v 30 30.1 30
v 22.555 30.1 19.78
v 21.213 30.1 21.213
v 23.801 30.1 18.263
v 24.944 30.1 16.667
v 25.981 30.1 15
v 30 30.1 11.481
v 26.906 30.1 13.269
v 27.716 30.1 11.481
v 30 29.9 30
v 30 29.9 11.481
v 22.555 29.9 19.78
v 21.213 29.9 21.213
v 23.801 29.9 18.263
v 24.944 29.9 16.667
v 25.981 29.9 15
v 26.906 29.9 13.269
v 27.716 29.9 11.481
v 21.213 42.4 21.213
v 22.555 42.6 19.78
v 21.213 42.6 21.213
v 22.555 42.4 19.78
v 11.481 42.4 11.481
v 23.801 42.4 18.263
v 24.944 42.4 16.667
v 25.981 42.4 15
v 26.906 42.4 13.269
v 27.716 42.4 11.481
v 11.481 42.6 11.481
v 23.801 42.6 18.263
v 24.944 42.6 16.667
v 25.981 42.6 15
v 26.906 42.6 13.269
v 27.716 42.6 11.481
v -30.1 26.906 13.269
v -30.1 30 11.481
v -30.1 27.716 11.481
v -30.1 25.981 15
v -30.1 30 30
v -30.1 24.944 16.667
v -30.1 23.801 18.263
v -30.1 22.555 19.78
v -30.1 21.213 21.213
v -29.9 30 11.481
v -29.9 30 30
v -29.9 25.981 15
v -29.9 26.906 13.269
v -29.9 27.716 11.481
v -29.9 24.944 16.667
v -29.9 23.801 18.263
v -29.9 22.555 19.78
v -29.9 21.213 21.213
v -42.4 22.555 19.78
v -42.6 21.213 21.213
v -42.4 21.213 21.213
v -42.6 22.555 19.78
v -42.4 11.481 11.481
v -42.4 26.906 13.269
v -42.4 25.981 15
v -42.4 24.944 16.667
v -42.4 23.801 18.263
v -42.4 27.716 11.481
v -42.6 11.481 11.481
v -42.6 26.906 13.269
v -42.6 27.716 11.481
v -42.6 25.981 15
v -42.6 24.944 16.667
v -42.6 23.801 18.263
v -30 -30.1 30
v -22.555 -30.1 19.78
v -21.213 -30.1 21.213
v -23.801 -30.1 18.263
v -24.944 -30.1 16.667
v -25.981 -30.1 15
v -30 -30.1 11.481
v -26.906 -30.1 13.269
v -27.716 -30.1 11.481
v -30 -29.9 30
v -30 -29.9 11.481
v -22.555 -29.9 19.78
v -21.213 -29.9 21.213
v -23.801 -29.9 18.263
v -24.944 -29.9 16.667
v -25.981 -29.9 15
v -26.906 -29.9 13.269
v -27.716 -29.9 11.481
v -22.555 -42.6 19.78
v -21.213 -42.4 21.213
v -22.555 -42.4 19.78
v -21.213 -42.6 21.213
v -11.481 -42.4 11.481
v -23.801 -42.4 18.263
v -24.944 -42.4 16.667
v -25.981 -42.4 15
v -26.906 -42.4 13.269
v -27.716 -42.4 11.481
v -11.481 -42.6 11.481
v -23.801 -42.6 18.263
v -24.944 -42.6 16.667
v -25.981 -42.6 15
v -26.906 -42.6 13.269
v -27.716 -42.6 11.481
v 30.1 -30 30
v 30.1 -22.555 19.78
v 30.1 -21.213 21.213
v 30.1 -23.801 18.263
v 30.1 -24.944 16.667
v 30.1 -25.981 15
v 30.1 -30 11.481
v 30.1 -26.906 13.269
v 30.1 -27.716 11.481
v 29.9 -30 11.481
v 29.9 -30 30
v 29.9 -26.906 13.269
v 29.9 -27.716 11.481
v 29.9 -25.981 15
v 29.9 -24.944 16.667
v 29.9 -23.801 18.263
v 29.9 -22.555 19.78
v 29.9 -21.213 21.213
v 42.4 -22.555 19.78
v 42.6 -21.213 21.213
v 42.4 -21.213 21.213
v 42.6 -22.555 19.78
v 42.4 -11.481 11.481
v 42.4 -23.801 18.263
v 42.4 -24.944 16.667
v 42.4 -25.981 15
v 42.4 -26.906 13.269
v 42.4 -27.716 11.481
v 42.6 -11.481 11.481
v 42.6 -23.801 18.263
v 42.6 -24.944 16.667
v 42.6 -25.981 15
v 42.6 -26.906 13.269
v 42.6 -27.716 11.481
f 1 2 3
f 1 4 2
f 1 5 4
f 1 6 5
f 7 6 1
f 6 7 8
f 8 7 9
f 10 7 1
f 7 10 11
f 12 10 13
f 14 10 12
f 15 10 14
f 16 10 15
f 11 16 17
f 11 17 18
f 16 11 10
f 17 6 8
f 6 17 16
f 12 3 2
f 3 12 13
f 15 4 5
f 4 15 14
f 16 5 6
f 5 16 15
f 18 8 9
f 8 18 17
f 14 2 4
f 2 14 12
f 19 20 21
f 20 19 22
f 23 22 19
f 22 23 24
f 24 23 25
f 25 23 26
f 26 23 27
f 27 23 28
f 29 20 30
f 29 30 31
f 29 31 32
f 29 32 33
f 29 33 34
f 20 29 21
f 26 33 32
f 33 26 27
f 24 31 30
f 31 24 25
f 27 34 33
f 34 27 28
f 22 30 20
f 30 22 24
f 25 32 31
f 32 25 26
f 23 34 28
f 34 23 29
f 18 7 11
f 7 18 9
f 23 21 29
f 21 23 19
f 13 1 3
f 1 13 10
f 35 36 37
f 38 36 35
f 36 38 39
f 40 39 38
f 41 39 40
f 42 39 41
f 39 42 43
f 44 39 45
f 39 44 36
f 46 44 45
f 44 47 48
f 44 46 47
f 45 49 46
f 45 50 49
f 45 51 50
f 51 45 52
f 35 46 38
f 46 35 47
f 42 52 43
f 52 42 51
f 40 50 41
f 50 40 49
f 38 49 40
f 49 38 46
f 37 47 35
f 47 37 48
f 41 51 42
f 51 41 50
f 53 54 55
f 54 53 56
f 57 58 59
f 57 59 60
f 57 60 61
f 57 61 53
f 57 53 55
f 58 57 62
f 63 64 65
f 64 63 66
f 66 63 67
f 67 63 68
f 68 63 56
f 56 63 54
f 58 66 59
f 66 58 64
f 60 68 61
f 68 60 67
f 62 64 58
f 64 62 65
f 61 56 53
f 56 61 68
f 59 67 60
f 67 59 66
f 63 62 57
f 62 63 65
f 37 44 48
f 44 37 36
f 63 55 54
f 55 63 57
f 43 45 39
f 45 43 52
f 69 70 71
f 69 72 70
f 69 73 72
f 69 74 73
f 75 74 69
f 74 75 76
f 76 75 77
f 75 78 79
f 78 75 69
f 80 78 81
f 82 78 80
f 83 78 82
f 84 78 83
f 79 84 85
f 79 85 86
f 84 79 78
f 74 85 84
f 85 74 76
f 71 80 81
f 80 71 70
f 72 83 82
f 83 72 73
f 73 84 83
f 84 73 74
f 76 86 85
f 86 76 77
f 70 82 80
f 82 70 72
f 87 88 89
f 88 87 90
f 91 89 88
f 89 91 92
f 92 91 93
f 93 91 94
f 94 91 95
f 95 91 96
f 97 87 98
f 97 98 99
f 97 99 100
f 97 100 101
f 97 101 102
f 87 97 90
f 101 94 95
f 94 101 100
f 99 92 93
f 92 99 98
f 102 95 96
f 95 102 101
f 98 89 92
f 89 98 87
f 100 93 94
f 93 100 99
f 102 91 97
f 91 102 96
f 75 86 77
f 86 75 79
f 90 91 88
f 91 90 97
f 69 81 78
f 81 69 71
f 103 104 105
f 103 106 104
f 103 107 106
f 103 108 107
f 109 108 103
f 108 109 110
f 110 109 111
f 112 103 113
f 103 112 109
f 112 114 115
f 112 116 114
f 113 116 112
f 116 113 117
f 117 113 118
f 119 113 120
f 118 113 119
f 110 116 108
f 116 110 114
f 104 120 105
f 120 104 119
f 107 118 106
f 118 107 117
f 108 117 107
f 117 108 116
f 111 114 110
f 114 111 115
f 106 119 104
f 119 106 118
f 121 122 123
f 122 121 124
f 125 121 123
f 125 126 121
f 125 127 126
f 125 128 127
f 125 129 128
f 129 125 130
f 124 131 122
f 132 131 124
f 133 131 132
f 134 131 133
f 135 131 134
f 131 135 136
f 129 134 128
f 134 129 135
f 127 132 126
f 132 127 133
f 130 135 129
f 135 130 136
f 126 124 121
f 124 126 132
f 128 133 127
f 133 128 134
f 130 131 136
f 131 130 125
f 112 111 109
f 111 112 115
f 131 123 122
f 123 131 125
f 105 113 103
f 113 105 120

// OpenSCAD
// file: def.scad
round_radius = 0.6;
sticker_margin = 1.2;
sticker_round_radius = 0.4;
cube_size = 60;
disk_height = 12.5;
disk_radius = cube_size / 2;
base_size = cube_size / 2 / sqrt(10 + 7 * sqrt(2));
cut1_dis = base_size * (1 + sqrt(2) / 2);
cut2_dis = cube_size / 2;
inf = cube_size * 10;

module _cube() {
    cube([cube_size - round_radius * 2, cube_size - round_radius * 2, cube_size - round_radius * 2], center = true);
}

module _disk() {
    translate([0, 0, cube_size / 2 + disk_height / 2])
        cylinder(r = disk_radius - round_radius, h = disk_height - round_radius * 2, center = true, $fn = 96);
}

module _int_cut1() {
    translate([-inf, -inf, cut1_dis + round_radius])
        cube([inf * 2, inf * 2, inf]);
}

module _dif_cut1() {
    translate([-inf, -inf, cut1_dis - round_radius])
        cube([inf * 2, inf * 2, inf]);
}

module _sticker_int_cut1() {
    translate([-inf, -inf, cut1_dis + sticker_margin])
        cube([inf * 2, inf * 2, inf]);
}

module _sticker_dif_cut1() {
    translate([-inf, -inf, cut1_dis - sticker_margin])
        cube([inf * 2, inf * 2, inf]);
}

module _int_cut2() {
    translate([-inf, -inf, cut2_dis + round_radius])
        cube([inf * 2, inf * 2, inf]);
}

module _dif_cut2() {
    translate([-inf, -inf, cut2_dis - round_radius])
        cube([inf * 2, inf * 2, inf]);
}

module _sticker_int_cut2() {
    translate([-inf, -inf, cut2_dis + sticker_margin])
        cube([inf * 2, inf * 2, inf]);
}

module _sticker_dif_cut2() {
    translate([-inf, -inf, cut2_dis - sticker_margin])
        cube([inf * 2, inf * 2, inf]);
}

module _sticker_cube() {
    translate([-cube_size / 2 + sticker_margin, -cube_size / 2 + sticker_margin, cube_size / 2 - 0.05])
        cube([cube_size - sticker_margin * 2, cube_size - sticker_margin * 2, 0.1]);
}

module _sticker_disk() {
    translate([0, 0, cube_size / 2 + disk_height - 0.05])
        cylinder(r = disk_radius - sticker_margin, h = 0.1, center = true, $fn = 96);
}
// main file
include <def.scad>

module selector_2_cw() {
    difference() {
        rotate([-90, 0, 0]) {
            difference() {
                translate([-cube_size / 2, -cube_size / 2, cube_size / 2 - 0.1])
                    cube([cube_size, cube_size, 0.2]);
                cylinder(r = disk_radius, h = inf * 2, center = true, $fn = 96);
            }
            translate([0, 0, cube_size / 2 + disk_height])
                cylinder(r = disk_radius, h = 0.2, center = true, $fn = 96);
        }
        rotate([180, 0, 0])
            translate([-inf, -inf, -cut1_dis])
                cube([inf * 2, inf * 2, inf]);
        rotate([0, -45, 0])
            translate([-inf, -inf, 0])
                cube([inf * 2, inf * 2, inf]);
    }
}

for (deg = [0 : 90 : 270])
    rotate([0, 0, deg])
        selector_2_cw();
